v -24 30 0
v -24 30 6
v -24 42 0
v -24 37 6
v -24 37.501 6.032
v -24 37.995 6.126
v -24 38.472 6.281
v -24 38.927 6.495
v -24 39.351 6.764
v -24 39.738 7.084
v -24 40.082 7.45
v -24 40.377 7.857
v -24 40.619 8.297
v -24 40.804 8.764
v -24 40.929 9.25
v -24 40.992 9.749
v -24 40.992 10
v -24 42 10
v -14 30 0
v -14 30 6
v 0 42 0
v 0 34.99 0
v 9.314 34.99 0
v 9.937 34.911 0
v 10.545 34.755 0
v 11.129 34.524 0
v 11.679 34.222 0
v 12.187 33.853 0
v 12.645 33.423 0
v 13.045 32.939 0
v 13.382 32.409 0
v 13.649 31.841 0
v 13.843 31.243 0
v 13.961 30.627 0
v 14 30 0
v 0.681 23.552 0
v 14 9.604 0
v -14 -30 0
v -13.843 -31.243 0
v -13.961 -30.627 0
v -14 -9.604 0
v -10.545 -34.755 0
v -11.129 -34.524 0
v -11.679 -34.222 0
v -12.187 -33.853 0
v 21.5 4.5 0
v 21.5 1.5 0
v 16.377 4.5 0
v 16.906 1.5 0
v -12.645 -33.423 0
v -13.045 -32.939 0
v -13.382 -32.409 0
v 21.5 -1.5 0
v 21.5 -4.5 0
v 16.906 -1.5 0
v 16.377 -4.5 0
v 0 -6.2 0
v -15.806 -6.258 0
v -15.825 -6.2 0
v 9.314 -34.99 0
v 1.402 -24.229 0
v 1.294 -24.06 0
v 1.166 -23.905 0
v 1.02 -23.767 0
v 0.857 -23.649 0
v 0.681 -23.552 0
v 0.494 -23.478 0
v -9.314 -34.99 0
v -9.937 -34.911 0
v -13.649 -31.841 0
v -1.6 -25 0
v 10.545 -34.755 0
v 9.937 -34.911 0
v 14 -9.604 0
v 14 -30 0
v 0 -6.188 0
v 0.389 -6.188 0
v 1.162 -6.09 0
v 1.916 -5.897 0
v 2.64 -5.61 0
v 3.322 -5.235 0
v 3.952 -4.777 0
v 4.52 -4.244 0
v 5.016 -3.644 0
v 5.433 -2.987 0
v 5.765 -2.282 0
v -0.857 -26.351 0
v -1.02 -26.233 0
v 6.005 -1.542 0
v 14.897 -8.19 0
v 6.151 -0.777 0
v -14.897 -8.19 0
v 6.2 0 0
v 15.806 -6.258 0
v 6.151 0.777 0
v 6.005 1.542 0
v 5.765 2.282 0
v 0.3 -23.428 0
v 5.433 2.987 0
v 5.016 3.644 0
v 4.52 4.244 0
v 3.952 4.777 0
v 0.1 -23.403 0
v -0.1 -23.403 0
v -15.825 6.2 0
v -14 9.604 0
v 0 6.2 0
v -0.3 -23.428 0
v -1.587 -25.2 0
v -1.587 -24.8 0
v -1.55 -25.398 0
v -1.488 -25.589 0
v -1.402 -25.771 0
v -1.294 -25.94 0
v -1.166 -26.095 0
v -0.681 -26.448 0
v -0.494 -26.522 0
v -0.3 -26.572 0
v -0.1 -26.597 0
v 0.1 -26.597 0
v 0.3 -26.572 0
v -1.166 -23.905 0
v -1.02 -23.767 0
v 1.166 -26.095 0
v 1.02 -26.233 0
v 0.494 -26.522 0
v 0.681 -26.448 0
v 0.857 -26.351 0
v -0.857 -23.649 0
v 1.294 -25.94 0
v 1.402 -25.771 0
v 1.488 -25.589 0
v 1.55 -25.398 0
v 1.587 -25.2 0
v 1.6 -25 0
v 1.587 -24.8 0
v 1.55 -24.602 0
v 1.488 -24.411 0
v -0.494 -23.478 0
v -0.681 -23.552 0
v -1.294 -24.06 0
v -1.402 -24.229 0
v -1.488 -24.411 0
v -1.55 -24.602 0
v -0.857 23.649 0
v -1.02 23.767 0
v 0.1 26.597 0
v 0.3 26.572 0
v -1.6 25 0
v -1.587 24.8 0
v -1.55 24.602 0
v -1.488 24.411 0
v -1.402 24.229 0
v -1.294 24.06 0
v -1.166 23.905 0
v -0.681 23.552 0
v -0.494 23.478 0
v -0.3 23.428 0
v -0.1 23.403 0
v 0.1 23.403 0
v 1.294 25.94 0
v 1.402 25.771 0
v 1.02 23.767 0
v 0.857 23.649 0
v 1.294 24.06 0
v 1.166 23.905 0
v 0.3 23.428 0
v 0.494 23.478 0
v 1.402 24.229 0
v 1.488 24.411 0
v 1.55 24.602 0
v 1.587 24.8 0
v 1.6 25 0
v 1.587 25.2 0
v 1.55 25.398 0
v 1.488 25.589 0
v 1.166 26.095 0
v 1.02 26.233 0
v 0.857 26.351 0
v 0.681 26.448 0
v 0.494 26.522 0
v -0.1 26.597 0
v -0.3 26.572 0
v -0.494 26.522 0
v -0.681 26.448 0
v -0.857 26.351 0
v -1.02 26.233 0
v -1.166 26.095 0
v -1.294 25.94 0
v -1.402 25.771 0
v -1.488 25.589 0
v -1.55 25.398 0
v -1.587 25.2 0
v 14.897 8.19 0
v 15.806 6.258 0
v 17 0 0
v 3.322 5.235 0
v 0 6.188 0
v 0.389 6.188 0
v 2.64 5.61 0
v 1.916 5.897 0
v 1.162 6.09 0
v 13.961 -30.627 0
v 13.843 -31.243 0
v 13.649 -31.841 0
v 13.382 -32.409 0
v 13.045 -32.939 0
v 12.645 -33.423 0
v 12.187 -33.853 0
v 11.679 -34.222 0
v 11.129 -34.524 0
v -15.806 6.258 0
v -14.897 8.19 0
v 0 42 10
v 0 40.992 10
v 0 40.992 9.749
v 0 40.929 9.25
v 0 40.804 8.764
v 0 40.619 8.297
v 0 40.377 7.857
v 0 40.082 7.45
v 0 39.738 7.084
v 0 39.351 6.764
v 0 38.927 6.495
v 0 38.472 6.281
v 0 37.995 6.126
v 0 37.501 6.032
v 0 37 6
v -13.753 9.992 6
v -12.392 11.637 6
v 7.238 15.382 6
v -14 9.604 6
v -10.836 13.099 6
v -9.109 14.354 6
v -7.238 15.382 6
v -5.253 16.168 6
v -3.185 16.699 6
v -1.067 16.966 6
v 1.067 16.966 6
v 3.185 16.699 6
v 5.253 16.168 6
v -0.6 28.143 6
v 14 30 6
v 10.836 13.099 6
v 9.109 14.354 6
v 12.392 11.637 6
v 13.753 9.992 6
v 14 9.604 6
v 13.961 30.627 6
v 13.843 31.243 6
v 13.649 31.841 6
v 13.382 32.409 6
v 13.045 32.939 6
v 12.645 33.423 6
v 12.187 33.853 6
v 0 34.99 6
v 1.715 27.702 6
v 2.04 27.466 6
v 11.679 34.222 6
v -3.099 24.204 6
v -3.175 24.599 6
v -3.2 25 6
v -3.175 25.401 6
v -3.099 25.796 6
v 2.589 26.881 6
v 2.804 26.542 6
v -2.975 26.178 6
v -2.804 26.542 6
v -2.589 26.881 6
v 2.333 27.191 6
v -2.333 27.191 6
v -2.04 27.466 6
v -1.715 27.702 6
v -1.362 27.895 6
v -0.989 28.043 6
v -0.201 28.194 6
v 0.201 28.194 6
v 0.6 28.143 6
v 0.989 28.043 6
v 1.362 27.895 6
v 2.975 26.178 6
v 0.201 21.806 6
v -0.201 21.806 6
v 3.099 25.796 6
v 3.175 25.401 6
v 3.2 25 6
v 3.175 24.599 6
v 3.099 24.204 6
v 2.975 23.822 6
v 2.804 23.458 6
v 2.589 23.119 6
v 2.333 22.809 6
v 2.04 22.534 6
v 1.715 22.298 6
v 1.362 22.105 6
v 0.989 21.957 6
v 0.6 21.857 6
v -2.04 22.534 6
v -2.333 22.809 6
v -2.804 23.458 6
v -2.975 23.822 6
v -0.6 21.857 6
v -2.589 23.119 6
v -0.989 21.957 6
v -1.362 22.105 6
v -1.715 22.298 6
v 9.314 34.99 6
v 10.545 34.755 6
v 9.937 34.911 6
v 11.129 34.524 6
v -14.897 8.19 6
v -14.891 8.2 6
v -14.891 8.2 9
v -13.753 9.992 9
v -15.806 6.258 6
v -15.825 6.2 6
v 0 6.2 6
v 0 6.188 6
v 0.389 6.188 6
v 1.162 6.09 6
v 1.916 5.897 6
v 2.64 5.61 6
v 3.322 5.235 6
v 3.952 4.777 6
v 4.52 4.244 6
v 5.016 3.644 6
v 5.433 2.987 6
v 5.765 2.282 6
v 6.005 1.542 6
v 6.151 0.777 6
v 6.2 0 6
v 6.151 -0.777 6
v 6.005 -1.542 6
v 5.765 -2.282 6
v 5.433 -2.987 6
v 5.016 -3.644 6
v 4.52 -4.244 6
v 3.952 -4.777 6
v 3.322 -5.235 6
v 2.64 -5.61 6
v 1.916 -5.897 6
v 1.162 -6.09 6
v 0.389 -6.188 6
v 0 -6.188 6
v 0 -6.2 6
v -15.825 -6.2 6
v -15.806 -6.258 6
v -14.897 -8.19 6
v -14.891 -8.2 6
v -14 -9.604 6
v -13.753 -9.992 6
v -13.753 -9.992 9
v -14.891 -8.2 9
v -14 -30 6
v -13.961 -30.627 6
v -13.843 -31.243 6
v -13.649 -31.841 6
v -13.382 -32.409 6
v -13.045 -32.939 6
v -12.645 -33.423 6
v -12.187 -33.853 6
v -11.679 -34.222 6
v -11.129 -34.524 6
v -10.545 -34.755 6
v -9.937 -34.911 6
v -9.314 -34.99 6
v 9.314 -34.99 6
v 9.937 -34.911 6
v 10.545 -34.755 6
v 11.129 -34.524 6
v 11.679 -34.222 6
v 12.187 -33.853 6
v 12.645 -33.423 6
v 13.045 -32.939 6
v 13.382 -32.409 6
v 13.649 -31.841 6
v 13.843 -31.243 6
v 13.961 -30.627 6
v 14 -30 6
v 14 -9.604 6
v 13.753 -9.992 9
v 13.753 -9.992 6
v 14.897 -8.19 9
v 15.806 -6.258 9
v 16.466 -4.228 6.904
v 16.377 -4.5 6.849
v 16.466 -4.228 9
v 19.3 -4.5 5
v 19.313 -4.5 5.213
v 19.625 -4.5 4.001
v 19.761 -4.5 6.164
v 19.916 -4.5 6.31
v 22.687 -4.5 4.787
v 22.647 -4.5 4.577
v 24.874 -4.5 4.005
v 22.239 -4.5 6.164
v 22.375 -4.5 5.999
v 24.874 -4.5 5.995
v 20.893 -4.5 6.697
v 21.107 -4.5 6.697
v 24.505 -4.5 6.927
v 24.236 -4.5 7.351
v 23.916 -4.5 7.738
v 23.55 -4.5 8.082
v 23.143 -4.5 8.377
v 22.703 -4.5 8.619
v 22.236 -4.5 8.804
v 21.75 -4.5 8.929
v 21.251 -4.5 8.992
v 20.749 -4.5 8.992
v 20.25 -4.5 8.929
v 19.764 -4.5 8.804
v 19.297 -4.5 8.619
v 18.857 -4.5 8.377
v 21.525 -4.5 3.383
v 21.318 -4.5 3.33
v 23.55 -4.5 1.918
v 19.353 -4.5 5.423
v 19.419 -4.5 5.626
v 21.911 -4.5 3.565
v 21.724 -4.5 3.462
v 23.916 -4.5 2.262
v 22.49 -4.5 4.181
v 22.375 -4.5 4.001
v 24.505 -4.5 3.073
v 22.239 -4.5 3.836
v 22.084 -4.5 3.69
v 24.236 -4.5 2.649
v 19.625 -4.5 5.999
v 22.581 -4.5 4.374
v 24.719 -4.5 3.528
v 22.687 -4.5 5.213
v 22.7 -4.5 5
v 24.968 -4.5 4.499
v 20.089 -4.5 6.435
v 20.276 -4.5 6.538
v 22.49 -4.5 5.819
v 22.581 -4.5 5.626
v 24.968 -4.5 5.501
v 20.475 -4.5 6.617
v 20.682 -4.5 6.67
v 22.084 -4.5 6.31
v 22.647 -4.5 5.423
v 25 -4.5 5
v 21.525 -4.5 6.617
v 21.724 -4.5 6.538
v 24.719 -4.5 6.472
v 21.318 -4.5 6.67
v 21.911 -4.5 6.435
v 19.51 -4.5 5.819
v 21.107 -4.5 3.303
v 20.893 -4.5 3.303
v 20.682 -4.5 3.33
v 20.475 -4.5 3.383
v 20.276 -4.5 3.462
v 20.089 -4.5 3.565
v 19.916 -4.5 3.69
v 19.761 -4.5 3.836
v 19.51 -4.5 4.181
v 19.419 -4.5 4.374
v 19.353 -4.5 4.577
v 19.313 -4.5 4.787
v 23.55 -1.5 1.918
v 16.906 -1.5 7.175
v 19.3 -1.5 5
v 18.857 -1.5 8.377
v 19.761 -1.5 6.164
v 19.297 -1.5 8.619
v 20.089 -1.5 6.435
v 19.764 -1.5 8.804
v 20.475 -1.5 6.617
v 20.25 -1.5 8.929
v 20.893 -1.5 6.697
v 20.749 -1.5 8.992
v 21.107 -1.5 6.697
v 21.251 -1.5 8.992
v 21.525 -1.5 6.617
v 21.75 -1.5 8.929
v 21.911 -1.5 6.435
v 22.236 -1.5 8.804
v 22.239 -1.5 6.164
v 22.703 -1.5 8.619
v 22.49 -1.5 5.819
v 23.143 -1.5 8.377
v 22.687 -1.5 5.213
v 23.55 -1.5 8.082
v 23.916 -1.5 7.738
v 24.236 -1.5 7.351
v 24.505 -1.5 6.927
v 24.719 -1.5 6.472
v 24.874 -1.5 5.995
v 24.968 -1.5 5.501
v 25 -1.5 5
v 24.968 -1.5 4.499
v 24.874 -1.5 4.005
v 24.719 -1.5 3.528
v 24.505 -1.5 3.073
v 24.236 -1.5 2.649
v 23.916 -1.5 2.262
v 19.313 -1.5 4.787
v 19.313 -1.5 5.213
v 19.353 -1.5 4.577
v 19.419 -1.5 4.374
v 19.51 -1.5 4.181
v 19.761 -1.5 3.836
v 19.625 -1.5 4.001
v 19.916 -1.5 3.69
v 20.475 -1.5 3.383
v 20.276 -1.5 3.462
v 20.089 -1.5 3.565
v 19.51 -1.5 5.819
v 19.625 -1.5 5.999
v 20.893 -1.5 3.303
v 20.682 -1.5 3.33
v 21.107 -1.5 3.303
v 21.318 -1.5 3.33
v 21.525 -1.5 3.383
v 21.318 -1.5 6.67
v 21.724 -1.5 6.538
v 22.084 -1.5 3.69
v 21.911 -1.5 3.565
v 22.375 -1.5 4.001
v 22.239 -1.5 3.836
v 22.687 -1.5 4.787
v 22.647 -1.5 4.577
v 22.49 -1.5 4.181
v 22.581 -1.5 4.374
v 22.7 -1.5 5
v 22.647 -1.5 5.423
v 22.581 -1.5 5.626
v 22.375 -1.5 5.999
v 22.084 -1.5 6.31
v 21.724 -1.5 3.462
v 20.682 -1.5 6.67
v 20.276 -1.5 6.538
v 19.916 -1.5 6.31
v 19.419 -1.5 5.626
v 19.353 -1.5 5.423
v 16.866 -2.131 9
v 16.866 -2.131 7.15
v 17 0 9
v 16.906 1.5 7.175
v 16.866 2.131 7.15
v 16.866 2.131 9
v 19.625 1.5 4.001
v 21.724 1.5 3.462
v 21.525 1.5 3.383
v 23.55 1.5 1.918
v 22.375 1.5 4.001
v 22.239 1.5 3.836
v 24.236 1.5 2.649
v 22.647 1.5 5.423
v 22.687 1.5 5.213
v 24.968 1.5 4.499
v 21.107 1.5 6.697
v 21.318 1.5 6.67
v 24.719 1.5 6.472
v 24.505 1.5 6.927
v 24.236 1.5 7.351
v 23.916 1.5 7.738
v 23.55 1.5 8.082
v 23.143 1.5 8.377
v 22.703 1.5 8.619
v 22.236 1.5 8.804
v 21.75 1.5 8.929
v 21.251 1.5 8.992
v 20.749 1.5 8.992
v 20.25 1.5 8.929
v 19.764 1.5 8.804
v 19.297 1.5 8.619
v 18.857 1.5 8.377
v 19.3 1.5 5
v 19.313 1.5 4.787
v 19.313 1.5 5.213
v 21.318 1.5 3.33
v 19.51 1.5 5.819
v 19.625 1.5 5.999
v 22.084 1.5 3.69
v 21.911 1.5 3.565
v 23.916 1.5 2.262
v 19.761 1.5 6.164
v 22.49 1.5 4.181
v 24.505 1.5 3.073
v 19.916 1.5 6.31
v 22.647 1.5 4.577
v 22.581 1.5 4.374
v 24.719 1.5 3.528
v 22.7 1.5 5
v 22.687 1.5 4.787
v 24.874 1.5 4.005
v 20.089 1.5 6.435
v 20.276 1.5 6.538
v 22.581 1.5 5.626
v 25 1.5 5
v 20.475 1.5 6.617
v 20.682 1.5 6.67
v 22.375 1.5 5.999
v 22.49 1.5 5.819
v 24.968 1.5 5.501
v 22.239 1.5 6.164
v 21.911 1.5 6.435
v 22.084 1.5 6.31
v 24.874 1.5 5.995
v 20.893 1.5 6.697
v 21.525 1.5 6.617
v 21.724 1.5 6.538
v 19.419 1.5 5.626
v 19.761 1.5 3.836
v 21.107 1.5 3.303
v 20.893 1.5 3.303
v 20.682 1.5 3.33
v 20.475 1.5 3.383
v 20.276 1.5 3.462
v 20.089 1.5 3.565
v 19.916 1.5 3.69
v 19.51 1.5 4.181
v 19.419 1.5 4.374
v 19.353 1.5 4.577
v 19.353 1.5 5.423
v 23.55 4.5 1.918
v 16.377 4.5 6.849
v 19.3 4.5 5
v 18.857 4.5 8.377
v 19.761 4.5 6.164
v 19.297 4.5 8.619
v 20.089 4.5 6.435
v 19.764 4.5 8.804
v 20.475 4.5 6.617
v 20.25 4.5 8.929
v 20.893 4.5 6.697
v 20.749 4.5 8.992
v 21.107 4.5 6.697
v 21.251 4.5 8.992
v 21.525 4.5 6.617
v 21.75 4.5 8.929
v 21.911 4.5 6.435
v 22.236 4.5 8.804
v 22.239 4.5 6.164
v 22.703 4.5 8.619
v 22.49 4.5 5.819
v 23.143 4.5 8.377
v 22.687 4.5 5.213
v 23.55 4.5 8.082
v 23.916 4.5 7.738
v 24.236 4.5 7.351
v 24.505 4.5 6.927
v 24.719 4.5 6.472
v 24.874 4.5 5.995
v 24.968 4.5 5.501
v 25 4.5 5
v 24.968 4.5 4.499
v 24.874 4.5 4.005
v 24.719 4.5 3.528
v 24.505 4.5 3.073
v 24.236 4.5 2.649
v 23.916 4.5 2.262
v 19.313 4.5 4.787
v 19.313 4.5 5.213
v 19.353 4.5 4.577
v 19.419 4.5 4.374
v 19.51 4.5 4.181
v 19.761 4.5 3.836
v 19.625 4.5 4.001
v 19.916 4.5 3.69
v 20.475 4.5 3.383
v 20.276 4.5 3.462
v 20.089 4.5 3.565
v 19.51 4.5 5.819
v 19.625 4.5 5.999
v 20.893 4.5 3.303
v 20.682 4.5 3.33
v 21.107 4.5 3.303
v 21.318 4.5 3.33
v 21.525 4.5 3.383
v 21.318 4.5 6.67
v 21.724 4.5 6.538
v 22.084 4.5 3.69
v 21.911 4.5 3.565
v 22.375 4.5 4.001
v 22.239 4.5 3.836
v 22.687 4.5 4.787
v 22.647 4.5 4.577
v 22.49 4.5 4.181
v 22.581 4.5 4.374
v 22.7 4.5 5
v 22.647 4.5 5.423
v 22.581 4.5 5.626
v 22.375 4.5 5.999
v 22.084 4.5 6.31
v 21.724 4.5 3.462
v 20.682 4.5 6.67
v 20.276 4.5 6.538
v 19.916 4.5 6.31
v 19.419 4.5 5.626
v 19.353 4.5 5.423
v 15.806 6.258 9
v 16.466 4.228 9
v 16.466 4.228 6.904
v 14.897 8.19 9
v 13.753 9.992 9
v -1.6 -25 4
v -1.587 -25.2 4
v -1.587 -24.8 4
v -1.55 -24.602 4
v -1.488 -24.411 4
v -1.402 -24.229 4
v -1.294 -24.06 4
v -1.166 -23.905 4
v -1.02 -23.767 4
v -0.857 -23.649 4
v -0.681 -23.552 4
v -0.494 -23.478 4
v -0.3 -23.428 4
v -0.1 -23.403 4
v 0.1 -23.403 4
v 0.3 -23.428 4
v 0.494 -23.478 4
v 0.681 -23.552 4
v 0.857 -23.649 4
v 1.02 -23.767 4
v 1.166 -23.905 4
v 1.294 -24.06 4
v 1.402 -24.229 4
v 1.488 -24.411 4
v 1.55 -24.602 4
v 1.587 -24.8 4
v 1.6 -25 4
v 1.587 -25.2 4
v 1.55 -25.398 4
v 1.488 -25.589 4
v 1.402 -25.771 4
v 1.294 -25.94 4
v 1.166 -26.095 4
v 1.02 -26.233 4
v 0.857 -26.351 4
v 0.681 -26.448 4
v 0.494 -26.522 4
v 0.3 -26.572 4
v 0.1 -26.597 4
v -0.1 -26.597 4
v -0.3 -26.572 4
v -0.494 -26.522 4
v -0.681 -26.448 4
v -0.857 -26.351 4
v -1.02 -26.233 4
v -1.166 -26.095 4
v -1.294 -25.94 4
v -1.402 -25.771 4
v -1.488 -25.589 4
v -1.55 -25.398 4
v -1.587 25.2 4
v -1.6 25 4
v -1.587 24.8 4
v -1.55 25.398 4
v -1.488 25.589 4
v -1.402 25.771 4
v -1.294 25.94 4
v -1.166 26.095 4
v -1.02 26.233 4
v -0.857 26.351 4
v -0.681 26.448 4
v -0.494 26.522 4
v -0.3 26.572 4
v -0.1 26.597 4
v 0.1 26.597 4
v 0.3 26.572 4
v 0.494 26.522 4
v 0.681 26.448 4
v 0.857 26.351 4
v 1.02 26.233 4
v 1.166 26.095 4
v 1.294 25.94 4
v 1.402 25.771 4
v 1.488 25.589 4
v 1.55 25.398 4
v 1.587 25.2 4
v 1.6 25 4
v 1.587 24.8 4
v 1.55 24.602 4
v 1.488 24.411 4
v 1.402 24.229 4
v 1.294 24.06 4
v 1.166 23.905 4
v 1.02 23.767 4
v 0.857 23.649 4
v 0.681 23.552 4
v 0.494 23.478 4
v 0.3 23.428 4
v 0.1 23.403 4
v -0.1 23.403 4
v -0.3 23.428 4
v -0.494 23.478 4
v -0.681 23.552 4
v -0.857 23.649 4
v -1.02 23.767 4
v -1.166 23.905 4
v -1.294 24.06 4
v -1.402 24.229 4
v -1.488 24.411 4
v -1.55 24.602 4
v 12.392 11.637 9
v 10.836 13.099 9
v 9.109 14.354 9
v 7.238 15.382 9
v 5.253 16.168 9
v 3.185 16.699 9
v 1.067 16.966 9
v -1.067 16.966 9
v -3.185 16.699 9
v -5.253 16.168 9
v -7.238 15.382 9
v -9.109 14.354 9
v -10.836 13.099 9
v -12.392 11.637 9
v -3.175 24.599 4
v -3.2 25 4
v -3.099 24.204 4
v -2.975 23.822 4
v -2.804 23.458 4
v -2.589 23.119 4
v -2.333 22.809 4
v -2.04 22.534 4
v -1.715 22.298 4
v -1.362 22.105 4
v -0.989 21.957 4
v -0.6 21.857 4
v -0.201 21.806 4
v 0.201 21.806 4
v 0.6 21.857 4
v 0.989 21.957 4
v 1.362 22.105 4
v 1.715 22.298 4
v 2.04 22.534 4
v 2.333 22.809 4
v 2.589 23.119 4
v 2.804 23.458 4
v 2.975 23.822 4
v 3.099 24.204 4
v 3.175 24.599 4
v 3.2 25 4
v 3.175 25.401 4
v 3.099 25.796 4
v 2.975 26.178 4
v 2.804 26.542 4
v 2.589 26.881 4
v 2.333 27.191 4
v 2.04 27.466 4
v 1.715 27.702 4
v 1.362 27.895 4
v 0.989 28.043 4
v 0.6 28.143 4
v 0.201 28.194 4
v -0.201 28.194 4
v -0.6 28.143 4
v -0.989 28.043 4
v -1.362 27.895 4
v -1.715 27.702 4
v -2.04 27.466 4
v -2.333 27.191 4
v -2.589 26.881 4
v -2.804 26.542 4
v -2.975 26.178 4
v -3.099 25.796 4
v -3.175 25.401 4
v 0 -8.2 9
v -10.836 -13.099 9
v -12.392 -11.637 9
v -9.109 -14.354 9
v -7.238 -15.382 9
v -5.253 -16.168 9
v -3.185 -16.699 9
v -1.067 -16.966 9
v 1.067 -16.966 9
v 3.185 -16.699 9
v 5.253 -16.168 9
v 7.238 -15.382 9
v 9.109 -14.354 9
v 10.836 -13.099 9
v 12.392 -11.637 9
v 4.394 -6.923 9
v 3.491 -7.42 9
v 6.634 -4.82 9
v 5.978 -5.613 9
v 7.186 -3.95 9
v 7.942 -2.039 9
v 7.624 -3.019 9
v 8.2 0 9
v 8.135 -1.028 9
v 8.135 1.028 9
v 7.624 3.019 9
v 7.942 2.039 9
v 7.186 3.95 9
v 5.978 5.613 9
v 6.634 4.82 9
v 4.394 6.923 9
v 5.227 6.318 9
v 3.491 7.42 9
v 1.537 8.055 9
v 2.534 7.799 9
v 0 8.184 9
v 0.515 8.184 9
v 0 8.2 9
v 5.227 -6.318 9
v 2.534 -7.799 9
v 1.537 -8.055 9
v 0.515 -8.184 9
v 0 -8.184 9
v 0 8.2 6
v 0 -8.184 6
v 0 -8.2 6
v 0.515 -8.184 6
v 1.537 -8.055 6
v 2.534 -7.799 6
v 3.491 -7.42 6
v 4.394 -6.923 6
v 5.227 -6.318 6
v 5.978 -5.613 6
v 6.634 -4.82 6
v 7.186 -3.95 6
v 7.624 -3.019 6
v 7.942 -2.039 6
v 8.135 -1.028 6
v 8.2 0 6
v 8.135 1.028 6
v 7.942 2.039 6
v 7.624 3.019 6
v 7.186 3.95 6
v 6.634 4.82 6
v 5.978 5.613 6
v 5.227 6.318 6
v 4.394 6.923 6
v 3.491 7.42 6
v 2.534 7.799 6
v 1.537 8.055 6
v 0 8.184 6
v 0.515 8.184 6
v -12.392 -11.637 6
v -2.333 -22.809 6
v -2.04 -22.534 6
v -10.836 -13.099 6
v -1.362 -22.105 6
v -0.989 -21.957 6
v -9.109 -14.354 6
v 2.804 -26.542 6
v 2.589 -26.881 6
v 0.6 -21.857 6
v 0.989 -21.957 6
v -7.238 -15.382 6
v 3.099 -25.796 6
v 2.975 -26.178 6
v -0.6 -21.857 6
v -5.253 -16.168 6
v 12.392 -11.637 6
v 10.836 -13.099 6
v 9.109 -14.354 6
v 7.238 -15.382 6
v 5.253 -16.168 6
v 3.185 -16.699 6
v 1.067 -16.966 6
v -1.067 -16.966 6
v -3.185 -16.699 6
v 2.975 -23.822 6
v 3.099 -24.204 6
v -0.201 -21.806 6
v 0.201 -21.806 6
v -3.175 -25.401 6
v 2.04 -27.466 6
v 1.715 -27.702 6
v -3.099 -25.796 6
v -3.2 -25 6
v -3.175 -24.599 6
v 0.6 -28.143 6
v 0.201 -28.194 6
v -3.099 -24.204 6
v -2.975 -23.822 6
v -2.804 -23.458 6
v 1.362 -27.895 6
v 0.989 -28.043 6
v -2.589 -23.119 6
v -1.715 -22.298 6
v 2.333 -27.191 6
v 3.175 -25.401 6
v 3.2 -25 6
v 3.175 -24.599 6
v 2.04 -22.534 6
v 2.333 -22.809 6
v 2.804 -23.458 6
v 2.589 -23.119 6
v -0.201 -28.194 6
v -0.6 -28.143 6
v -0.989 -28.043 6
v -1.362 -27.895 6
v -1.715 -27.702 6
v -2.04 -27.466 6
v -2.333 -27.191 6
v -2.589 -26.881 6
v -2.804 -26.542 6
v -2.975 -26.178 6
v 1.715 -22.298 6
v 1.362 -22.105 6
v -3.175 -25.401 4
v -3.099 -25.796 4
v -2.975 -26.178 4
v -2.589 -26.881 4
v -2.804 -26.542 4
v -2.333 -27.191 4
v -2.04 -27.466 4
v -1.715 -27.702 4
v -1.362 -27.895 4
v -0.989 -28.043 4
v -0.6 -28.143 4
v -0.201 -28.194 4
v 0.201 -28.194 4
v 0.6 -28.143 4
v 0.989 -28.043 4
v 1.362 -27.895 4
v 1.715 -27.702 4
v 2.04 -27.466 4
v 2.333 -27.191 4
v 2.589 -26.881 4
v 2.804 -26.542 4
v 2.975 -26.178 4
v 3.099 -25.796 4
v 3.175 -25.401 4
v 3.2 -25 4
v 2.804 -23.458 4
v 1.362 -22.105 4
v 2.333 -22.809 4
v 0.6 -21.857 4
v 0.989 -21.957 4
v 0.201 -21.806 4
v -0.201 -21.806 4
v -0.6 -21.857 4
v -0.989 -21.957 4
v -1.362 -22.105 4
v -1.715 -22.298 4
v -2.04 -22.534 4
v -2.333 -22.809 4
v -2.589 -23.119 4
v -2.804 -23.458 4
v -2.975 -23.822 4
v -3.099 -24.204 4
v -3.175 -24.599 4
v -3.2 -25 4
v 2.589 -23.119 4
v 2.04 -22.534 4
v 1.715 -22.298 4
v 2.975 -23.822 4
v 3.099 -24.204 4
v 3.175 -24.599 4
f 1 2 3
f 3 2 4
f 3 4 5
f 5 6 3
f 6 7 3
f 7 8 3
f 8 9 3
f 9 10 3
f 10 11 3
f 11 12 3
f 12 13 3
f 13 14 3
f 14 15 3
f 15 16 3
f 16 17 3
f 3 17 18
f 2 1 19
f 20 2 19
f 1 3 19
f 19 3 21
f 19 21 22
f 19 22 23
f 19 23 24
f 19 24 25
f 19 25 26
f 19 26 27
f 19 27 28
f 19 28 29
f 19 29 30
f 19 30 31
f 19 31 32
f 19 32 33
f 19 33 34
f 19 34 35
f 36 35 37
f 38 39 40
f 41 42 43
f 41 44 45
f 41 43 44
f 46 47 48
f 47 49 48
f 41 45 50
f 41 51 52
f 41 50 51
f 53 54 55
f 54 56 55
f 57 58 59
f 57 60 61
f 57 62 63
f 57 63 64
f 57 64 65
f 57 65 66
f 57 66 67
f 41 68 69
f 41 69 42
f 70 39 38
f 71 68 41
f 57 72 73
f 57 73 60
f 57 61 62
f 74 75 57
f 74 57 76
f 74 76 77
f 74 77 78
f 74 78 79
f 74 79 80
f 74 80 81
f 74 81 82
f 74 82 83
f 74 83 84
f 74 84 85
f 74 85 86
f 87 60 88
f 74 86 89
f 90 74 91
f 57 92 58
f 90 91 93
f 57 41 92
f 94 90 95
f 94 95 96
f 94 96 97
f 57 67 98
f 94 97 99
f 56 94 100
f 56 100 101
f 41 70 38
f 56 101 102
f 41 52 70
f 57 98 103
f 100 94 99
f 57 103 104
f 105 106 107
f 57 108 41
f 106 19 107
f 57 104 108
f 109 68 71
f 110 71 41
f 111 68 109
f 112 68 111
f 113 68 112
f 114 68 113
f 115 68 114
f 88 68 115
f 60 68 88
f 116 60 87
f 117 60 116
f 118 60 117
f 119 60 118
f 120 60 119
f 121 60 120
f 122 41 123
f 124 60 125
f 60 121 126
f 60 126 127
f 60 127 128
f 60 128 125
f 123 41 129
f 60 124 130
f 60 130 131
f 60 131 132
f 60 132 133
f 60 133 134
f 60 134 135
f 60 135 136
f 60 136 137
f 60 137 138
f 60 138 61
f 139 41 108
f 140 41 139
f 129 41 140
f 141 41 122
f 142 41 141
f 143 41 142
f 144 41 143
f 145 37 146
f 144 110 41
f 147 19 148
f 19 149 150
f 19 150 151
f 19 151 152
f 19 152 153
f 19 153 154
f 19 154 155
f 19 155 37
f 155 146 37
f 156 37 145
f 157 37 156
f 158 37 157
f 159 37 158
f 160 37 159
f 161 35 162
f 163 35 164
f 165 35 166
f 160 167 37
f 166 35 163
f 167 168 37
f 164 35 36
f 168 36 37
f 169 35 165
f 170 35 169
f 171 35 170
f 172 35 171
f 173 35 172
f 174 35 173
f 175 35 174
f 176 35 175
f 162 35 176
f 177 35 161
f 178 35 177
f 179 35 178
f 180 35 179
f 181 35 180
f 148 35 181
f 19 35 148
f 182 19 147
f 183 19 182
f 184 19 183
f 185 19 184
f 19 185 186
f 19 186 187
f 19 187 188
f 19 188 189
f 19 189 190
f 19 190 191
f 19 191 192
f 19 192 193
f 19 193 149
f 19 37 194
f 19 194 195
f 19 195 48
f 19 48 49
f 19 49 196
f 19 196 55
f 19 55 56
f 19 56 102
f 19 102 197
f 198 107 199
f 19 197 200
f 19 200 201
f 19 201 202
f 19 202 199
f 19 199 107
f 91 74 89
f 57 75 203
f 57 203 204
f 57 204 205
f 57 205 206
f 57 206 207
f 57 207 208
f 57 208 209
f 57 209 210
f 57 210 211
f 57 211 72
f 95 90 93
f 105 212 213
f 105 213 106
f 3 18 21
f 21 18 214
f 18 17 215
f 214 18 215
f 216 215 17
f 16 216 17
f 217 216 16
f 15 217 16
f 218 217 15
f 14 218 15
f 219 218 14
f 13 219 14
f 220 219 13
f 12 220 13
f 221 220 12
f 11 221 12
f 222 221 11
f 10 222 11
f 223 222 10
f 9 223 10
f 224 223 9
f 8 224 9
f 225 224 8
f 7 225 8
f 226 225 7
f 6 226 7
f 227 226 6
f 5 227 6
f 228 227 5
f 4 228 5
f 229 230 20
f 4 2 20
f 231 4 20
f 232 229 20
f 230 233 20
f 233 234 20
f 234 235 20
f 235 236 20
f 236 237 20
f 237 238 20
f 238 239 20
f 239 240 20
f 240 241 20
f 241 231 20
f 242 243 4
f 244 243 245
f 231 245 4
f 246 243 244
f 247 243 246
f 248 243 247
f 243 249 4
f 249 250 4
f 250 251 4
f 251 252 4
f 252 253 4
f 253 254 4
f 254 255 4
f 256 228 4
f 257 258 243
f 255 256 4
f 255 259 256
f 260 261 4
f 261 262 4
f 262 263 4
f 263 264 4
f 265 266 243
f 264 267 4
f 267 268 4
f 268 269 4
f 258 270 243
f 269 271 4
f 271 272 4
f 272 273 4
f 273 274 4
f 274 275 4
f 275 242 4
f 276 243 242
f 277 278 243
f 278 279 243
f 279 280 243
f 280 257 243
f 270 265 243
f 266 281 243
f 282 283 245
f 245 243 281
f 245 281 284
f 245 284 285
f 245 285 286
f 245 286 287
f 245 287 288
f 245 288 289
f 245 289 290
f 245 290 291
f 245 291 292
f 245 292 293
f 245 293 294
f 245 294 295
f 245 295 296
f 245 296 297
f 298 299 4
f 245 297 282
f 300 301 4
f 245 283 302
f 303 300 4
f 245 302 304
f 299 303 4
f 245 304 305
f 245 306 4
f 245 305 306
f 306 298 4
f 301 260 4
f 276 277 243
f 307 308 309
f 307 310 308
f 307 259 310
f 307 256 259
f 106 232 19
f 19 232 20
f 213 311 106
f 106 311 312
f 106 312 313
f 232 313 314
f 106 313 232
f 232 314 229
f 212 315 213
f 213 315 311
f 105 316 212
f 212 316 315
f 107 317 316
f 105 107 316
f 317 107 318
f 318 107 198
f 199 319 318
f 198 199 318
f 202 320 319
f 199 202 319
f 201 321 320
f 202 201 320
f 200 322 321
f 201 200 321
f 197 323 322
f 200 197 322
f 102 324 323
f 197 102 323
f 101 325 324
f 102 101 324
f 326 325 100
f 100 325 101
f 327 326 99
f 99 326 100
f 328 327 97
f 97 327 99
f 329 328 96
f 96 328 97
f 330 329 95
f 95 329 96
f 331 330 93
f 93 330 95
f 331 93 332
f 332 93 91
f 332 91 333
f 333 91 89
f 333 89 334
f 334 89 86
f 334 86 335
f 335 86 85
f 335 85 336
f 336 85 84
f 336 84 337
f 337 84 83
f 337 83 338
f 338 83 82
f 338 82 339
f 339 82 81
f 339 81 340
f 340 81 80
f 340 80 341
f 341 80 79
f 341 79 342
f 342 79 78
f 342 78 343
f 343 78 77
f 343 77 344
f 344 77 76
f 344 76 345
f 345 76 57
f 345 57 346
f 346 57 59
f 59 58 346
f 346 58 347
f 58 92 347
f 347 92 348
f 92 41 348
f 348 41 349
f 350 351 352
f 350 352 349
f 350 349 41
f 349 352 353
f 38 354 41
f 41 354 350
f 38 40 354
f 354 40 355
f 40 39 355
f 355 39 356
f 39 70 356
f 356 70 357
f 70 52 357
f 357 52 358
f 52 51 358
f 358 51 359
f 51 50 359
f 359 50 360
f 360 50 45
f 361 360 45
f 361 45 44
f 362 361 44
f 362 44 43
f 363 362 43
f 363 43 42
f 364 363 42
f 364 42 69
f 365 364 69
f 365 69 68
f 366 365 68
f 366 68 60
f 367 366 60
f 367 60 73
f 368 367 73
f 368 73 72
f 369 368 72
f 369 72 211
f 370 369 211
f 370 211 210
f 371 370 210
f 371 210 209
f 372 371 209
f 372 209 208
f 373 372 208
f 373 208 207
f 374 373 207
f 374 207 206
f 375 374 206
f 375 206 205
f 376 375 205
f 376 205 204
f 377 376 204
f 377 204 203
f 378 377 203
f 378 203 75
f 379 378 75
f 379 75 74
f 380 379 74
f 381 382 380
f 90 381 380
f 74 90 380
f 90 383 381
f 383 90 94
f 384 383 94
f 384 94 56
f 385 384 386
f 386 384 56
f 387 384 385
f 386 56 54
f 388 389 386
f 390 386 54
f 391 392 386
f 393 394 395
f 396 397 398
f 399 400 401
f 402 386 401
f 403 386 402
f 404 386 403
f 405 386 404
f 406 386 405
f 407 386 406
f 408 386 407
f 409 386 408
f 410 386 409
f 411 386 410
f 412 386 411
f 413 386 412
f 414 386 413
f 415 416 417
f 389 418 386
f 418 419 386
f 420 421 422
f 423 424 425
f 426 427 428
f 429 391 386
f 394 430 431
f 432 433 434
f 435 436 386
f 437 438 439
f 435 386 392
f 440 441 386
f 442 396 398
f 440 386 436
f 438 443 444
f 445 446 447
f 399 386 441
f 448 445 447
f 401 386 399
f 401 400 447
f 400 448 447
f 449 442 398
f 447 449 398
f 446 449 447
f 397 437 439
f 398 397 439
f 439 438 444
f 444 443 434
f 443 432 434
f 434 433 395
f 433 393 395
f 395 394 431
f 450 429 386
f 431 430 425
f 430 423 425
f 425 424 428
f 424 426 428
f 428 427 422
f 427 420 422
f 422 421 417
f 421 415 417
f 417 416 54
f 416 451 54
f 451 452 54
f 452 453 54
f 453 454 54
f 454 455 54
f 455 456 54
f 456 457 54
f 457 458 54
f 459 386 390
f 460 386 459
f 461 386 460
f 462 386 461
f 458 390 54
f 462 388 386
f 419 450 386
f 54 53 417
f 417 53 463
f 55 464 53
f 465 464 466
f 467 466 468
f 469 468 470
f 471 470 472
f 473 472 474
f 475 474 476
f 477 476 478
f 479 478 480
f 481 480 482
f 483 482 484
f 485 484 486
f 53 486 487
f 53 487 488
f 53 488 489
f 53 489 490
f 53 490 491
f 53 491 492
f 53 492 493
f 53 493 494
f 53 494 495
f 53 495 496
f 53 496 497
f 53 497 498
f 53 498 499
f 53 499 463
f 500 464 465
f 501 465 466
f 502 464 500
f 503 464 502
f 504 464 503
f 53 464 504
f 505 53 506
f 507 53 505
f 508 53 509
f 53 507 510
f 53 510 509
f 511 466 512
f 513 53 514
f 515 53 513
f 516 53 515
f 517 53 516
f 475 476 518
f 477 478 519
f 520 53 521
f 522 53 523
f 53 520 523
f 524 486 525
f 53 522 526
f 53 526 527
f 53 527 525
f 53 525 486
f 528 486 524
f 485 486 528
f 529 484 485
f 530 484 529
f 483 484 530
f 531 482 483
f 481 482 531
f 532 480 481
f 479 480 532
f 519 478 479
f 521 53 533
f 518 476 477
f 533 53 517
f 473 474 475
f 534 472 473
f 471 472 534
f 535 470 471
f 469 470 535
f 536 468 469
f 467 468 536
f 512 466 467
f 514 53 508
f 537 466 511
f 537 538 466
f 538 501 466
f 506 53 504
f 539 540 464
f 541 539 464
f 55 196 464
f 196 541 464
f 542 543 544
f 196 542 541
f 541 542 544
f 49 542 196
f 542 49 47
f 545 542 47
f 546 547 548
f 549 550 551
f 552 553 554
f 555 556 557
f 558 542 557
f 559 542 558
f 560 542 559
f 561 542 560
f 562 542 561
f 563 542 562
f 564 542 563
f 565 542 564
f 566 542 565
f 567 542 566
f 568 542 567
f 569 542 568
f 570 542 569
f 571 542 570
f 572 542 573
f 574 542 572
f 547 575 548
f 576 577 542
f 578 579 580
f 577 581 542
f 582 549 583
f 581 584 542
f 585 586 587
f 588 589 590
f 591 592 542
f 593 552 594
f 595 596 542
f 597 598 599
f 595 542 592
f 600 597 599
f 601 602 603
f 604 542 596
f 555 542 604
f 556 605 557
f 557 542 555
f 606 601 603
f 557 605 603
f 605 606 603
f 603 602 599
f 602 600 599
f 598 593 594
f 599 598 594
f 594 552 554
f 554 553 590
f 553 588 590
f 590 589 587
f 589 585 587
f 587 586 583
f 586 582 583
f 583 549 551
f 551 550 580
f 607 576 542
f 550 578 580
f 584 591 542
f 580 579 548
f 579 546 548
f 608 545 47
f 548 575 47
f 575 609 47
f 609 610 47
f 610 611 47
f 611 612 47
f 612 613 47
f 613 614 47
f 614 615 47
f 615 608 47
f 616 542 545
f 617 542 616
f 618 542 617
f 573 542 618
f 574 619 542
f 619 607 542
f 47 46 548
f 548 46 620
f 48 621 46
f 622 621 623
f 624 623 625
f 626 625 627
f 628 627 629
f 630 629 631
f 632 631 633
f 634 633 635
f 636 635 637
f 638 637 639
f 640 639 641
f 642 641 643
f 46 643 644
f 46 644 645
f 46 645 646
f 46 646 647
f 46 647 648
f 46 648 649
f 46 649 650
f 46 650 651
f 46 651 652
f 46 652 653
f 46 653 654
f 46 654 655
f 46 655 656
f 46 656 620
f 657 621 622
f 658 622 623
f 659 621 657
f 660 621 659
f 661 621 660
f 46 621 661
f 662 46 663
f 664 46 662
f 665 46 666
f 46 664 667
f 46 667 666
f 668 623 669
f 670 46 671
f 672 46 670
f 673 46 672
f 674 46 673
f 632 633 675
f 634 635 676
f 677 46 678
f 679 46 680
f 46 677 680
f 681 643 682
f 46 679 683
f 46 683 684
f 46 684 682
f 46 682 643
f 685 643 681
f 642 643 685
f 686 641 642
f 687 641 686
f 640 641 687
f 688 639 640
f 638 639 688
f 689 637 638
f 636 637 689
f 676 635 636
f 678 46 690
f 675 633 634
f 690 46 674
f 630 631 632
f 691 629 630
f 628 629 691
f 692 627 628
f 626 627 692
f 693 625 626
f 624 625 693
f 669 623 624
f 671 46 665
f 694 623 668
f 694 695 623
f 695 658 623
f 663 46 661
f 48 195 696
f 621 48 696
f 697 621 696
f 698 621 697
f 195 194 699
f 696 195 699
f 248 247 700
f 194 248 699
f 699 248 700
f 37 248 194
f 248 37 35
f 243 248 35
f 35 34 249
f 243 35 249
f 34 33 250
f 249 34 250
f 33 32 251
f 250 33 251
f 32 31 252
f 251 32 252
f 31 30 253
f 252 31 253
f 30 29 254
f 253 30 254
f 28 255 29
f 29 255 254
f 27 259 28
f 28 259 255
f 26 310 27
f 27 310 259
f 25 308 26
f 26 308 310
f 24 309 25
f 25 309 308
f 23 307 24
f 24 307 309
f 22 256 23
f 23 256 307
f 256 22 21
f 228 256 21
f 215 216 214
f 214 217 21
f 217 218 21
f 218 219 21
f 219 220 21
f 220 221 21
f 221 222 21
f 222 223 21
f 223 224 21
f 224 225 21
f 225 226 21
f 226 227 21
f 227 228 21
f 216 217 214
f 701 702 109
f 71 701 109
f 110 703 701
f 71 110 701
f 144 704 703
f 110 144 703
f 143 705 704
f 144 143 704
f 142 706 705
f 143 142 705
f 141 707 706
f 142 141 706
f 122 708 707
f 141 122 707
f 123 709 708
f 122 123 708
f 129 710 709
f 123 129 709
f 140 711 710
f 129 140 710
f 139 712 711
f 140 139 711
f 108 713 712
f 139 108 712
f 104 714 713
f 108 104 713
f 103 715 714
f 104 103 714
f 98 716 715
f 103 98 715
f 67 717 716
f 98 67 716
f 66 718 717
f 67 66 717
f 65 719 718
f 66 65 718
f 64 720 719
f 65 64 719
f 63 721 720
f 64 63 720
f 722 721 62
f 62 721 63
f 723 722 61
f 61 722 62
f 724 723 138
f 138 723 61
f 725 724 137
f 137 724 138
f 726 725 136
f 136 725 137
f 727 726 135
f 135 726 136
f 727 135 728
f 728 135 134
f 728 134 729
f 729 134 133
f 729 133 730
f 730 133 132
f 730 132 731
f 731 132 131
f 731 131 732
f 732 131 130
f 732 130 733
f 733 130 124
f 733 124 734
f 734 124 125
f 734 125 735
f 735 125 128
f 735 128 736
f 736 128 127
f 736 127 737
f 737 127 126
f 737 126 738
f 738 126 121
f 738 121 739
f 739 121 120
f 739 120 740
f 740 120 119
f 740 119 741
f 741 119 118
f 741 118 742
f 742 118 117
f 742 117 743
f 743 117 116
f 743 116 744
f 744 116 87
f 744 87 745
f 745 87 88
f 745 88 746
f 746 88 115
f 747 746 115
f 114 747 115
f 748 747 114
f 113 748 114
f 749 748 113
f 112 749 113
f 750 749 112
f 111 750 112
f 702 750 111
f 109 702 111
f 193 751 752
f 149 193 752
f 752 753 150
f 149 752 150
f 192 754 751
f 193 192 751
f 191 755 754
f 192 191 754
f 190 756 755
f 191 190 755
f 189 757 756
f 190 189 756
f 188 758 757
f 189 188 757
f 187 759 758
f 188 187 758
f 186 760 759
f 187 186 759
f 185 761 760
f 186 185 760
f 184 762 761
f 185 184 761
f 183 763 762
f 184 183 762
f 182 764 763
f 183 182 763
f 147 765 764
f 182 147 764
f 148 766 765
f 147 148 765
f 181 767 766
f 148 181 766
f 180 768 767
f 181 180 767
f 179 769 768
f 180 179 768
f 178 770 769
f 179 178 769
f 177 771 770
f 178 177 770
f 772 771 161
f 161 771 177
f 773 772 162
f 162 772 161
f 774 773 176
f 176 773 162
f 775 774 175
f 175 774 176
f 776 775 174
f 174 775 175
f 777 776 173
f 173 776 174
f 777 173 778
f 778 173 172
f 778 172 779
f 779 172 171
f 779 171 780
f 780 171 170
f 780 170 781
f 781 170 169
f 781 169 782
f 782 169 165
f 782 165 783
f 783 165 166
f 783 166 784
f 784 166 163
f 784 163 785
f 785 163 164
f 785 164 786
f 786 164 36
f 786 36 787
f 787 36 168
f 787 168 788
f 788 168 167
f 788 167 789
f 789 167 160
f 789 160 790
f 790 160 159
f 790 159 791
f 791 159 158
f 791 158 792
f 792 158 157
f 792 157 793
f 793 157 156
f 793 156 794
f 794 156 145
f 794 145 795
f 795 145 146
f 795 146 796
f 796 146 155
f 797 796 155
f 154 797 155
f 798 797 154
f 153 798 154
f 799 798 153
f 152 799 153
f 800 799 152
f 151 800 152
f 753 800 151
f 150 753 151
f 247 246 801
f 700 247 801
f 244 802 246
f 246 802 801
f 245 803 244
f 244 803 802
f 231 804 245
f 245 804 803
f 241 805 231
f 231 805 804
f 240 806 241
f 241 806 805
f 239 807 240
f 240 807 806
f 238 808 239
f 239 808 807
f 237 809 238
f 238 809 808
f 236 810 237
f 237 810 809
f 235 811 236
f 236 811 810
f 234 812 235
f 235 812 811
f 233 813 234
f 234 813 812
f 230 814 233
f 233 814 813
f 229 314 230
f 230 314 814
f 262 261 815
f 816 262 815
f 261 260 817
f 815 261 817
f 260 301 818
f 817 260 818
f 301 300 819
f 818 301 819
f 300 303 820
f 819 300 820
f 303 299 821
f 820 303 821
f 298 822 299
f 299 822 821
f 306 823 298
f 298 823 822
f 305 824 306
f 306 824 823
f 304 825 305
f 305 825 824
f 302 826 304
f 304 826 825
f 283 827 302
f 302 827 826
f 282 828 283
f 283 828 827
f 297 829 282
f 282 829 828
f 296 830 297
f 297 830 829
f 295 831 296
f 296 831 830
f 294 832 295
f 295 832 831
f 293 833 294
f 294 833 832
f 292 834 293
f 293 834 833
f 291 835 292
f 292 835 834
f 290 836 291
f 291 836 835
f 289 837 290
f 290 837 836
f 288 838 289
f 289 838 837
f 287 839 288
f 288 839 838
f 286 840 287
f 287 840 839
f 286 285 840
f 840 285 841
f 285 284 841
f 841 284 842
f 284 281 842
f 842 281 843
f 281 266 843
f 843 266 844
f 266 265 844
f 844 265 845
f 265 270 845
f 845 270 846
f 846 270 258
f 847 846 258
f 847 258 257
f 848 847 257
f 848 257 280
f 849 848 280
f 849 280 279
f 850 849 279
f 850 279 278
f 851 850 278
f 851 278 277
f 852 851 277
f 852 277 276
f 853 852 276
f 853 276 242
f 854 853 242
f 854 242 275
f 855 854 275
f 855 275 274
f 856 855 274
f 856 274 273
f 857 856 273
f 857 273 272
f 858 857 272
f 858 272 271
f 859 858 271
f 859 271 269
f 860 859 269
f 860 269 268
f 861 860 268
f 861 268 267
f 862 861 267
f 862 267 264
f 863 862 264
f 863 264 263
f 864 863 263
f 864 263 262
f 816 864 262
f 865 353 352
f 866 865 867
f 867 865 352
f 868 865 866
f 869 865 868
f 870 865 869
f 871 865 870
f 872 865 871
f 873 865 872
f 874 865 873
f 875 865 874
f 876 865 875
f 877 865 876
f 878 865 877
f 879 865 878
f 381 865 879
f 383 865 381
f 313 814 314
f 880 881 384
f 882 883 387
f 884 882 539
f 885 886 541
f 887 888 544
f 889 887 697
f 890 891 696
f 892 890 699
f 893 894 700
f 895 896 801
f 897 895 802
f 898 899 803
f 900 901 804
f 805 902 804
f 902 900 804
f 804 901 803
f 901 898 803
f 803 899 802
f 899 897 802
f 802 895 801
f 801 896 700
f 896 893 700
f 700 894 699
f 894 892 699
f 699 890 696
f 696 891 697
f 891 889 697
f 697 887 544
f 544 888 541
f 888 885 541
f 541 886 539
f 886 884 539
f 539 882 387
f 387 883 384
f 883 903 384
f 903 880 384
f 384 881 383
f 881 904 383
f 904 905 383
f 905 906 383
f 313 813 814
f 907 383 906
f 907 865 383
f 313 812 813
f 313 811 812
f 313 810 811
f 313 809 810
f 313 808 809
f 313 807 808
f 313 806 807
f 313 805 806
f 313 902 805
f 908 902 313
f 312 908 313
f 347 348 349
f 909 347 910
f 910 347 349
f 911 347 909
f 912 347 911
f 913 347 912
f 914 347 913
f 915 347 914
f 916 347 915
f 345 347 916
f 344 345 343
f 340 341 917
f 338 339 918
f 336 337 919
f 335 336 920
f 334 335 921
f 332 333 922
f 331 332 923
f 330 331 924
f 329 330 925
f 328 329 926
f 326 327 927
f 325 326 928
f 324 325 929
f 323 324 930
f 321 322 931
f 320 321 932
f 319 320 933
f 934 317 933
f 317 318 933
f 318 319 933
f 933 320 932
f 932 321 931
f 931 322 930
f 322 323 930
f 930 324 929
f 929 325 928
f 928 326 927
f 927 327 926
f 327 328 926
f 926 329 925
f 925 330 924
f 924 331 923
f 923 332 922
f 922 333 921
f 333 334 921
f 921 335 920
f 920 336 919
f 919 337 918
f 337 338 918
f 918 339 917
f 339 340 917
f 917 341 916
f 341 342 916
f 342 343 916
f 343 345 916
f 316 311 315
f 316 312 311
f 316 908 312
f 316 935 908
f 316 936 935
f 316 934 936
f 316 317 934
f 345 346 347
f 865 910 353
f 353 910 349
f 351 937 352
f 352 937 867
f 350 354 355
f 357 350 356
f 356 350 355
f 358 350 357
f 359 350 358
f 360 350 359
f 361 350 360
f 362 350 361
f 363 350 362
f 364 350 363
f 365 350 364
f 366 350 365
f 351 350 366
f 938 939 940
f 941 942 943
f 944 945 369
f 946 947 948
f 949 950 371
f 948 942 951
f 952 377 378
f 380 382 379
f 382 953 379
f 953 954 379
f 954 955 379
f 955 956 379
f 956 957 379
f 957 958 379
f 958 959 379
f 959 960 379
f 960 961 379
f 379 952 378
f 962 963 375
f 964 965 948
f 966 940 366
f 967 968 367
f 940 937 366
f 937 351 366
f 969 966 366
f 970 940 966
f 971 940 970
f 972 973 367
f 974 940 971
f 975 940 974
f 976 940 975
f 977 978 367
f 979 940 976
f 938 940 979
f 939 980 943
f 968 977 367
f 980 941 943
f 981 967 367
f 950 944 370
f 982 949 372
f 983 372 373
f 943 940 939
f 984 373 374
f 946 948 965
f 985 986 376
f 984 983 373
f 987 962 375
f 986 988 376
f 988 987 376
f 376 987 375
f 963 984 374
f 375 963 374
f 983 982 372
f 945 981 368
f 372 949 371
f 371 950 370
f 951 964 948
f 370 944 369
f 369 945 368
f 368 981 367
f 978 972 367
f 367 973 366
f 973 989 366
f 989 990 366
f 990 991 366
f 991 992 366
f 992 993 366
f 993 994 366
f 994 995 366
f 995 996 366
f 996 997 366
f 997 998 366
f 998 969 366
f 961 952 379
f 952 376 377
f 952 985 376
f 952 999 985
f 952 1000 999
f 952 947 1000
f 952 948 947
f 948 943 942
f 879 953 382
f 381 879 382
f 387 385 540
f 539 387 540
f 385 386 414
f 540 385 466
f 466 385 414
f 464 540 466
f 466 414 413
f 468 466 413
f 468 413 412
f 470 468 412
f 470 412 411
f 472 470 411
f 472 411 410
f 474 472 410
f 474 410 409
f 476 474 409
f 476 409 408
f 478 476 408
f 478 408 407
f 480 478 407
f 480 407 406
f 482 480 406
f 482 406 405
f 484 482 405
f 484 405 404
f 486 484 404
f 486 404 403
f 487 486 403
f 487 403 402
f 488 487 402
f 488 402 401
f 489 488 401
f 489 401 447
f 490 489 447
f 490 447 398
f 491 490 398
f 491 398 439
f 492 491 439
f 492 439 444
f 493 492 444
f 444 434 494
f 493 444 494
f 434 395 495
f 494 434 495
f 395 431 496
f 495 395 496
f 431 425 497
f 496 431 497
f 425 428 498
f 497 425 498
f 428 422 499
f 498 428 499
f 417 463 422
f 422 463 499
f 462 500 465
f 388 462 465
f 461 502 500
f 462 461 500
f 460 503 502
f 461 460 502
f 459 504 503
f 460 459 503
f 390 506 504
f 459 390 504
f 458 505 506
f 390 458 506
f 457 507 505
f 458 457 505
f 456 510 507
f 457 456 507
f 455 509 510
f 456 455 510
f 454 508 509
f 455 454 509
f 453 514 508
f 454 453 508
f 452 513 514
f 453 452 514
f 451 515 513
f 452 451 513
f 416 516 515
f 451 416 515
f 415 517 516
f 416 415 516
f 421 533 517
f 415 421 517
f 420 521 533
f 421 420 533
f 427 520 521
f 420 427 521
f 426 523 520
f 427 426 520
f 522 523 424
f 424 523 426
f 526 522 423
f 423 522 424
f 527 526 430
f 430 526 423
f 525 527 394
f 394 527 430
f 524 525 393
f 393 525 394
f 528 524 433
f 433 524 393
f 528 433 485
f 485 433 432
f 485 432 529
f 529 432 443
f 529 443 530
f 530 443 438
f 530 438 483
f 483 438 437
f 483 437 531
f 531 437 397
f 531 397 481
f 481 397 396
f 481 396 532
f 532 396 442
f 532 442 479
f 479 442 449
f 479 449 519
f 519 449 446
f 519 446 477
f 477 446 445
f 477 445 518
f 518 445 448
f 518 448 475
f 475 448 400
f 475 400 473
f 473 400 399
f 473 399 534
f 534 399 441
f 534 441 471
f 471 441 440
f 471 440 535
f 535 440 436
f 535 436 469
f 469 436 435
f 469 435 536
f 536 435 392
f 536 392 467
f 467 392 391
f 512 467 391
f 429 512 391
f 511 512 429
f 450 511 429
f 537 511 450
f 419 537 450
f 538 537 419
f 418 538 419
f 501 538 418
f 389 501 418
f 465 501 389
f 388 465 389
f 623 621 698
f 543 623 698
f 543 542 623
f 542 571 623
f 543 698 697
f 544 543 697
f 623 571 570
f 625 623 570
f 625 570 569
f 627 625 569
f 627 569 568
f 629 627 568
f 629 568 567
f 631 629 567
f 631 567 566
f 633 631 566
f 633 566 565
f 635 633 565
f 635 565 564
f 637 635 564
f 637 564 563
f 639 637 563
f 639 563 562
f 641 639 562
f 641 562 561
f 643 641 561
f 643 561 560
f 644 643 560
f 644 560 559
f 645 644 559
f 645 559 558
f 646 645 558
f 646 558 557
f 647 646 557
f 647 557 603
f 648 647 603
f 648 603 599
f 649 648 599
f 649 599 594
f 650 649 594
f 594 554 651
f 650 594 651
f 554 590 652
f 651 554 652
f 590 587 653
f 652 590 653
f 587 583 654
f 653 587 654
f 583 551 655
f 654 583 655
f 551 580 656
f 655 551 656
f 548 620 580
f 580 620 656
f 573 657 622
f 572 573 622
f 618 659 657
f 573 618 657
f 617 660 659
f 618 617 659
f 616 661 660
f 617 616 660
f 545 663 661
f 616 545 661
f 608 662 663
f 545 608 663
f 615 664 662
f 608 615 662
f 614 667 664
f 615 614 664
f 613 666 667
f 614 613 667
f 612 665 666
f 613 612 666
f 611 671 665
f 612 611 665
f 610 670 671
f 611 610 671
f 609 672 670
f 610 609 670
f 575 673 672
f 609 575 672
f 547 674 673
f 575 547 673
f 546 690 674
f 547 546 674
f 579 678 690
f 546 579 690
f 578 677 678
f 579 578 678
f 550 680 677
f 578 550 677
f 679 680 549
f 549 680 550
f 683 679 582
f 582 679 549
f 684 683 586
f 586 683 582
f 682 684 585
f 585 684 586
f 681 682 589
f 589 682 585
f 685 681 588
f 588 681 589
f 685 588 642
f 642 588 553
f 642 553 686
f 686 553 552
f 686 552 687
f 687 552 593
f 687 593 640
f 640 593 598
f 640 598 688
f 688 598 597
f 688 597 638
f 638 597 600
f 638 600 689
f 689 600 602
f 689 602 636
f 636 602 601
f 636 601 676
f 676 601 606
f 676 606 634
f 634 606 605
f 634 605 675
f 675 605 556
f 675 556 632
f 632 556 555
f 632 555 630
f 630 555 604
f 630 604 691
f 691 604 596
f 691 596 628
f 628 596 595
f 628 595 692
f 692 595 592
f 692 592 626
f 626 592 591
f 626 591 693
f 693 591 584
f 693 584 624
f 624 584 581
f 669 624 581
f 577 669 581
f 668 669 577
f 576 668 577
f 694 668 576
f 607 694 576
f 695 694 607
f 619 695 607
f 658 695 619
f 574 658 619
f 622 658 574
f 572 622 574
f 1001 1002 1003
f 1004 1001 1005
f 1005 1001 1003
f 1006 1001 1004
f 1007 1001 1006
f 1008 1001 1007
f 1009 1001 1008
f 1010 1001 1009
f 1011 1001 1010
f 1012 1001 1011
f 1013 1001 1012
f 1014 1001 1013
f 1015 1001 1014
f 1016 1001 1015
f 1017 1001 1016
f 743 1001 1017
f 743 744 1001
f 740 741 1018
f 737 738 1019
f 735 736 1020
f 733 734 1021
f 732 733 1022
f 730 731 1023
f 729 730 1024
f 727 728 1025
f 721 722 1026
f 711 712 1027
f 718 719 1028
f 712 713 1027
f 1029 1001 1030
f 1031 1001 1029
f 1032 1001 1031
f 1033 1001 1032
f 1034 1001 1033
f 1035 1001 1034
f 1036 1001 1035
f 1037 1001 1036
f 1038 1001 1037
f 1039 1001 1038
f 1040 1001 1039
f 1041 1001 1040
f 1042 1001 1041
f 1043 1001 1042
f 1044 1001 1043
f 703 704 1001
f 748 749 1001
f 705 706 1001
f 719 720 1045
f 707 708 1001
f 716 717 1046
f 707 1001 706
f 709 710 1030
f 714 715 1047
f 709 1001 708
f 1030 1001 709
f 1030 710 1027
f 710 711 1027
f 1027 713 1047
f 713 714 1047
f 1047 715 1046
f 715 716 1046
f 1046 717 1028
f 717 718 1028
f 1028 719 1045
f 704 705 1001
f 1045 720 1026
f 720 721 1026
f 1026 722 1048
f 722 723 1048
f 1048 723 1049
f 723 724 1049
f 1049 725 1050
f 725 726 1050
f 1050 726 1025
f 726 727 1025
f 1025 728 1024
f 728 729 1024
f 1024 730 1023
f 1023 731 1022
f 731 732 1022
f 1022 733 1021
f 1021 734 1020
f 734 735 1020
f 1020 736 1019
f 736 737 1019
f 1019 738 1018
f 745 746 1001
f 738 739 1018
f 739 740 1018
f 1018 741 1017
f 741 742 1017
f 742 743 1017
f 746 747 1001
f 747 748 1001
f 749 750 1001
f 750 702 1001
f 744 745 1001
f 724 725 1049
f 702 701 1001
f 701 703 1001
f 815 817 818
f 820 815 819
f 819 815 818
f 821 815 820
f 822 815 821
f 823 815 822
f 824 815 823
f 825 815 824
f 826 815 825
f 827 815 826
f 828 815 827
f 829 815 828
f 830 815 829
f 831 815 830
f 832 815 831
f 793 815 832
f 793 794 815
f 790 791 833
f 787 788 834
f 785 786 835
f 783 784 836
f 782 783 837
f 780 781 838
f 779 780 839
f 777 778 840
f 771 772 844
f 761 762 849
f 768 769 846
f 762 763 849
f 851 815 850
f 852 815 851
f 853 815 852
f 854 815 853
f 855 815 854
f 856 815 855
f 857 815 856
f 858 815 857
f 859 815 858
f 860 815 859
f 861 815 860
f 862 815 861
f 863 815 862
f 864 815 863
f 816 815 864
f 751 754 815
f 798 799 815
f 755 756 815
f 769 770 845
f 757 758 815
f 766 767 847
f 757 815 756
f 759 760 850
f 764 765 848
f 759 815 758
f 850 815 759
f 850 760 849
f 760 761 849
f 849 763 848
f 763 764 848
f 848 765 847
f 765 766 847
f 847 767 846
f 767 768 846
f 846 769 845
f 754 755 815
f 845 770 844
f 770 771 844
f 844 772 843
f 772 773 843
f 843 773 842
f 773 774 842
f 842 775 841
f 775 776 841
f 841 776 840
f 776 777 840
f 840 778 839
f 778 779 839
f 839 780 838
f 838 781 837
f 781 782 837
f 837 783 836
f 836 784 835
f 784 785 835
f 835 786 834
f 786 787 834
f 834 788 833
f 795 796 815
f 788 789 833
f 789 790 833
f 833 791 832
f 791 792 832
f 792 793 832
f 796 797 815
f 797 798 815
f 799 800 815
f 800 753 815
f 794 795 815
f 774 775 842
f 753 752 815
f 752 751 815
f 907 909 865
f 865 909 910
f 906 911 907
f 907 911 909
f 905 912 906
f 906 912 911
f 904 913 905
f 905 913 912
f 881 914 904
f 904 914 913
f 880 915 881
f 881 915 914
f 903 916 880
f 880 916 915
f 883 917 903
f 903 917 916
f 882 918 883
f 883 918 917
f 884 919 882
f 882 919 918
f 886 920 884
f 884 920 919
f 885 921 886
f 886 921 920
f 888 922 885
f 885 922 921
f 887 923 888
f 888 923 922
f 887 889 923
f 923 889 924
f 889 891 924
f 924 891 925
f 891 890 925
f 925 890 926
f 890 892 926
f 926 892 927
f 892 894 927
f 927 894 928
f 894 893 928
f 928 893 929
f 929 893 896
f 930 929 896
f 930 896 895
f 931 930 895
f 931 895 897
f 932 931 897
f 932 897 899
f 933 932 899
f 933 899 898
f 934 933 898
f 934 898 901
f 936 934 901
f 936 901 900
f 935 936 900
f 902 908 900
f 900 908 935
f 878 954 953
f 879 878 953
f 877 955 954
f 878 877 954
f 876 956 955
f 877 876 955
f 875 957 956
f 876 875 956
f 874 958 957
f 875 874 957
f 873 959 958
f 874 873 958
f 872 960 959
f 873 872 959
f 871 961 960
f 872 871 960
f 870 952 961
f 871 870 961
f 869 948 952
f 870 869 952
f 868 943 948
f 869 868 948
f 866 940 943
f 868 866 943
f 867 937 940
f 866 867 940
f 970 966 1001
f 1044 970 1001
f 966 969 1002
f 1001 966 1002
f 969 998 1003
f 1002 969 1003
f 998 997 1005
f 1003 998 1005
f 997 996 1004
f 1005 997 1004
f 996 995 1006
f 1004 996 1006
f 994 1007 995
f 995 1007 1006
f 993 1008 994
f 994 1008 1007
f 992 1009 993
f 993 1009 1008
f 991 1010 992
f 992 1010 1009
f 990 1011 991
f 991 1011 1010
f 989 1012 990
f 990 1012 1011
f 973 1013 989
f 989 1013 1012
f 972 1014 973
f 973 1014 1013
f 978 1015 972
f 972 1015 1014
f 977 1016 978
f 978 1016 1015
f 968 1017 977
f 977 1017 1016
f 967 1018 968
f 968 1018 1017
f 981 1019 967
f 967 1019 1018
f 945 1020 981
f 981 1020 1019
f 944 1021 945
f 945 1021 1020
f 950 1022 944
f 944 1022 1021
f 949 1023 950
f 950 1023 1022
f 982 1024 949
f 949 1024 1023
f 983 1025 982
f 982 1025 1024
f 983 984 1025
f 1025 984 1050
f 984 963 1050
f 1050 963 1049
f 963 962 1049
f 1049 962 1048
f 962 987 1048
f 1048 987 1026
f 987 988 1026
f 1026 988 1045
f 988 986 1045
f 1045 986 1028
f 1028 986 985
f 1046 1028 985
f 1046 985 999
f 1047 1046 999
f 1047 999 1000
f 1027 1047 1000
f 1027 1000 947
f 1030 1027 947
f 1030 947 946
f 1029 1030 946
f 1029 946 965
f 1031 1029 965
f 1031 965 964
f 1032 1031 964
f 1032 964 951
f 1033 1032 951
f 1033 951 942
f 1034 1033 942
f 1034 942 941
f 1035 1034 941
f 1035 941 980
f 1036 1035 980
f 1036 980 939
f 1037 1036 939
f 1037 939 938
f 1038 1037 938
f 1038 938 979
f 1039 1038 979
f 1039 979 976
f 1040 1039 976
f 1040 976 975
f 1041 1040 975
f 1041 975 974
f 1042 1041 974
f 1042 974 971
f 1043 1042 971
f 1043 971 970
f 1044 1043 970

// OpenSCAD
$fn=50;

module groovemount(){

	difference(){
		union () {
			translate([-9,-30,0]) minkowski () {
				cube(size=[18,60,5], center=false);
				cylinder (r=5, h=1);
			}
			translate([0,0,0]) cylinder (r=17, h=9);

			translate ([-24,30,0]) cube ([24,12,6]);
			translate ([-24,37,0]) cube ([24,5,10]);
		}

		translate ([-25,37,10]) rotate ([0,90,0]) cylinder (r=4, h=26);

		translate([-10,0,5]) cube(size=[20,12.4,15], center=true);
		translate([-10,0,5+6]) cube(size=[20,16.4,10], center=true);

		translate ([0,0,-1]) cylinder(h=20, r=12.4/2);
		translate ([0,0,6]) cylinder (h=20, r=16.4/2);
		translate ([0,-25,-1]) cylinder (h=20, r=1.6);
		translate ([0,25,-1]) cylinder (h=20, r=1.6);
		translate ([0,-25,4]) cylinder (h=6, r=3.2);
		translate ([0,25,4]) cylinder (h=6, r=3.2);
	}
}

module hinge() {
	difference() {
		hull() {
			translate([0.5,0,6/2]) cube([1,3,6],center=true);
			translate([6,0,5]) rotate ([90,0,0]) cylinder(r=4,h=3, center=true);
			translate([6,0,0.2/2]) cube([1,3,0.2],center=true);
		}
		translate([6,0,5]) rotate ([90,0,0]) cylinder(r=3.4/2,h=30, center=true);
	}	
}
groovemount();
translate([15,-3,0]) hinge();
translate([15,3,0]) hinge();
